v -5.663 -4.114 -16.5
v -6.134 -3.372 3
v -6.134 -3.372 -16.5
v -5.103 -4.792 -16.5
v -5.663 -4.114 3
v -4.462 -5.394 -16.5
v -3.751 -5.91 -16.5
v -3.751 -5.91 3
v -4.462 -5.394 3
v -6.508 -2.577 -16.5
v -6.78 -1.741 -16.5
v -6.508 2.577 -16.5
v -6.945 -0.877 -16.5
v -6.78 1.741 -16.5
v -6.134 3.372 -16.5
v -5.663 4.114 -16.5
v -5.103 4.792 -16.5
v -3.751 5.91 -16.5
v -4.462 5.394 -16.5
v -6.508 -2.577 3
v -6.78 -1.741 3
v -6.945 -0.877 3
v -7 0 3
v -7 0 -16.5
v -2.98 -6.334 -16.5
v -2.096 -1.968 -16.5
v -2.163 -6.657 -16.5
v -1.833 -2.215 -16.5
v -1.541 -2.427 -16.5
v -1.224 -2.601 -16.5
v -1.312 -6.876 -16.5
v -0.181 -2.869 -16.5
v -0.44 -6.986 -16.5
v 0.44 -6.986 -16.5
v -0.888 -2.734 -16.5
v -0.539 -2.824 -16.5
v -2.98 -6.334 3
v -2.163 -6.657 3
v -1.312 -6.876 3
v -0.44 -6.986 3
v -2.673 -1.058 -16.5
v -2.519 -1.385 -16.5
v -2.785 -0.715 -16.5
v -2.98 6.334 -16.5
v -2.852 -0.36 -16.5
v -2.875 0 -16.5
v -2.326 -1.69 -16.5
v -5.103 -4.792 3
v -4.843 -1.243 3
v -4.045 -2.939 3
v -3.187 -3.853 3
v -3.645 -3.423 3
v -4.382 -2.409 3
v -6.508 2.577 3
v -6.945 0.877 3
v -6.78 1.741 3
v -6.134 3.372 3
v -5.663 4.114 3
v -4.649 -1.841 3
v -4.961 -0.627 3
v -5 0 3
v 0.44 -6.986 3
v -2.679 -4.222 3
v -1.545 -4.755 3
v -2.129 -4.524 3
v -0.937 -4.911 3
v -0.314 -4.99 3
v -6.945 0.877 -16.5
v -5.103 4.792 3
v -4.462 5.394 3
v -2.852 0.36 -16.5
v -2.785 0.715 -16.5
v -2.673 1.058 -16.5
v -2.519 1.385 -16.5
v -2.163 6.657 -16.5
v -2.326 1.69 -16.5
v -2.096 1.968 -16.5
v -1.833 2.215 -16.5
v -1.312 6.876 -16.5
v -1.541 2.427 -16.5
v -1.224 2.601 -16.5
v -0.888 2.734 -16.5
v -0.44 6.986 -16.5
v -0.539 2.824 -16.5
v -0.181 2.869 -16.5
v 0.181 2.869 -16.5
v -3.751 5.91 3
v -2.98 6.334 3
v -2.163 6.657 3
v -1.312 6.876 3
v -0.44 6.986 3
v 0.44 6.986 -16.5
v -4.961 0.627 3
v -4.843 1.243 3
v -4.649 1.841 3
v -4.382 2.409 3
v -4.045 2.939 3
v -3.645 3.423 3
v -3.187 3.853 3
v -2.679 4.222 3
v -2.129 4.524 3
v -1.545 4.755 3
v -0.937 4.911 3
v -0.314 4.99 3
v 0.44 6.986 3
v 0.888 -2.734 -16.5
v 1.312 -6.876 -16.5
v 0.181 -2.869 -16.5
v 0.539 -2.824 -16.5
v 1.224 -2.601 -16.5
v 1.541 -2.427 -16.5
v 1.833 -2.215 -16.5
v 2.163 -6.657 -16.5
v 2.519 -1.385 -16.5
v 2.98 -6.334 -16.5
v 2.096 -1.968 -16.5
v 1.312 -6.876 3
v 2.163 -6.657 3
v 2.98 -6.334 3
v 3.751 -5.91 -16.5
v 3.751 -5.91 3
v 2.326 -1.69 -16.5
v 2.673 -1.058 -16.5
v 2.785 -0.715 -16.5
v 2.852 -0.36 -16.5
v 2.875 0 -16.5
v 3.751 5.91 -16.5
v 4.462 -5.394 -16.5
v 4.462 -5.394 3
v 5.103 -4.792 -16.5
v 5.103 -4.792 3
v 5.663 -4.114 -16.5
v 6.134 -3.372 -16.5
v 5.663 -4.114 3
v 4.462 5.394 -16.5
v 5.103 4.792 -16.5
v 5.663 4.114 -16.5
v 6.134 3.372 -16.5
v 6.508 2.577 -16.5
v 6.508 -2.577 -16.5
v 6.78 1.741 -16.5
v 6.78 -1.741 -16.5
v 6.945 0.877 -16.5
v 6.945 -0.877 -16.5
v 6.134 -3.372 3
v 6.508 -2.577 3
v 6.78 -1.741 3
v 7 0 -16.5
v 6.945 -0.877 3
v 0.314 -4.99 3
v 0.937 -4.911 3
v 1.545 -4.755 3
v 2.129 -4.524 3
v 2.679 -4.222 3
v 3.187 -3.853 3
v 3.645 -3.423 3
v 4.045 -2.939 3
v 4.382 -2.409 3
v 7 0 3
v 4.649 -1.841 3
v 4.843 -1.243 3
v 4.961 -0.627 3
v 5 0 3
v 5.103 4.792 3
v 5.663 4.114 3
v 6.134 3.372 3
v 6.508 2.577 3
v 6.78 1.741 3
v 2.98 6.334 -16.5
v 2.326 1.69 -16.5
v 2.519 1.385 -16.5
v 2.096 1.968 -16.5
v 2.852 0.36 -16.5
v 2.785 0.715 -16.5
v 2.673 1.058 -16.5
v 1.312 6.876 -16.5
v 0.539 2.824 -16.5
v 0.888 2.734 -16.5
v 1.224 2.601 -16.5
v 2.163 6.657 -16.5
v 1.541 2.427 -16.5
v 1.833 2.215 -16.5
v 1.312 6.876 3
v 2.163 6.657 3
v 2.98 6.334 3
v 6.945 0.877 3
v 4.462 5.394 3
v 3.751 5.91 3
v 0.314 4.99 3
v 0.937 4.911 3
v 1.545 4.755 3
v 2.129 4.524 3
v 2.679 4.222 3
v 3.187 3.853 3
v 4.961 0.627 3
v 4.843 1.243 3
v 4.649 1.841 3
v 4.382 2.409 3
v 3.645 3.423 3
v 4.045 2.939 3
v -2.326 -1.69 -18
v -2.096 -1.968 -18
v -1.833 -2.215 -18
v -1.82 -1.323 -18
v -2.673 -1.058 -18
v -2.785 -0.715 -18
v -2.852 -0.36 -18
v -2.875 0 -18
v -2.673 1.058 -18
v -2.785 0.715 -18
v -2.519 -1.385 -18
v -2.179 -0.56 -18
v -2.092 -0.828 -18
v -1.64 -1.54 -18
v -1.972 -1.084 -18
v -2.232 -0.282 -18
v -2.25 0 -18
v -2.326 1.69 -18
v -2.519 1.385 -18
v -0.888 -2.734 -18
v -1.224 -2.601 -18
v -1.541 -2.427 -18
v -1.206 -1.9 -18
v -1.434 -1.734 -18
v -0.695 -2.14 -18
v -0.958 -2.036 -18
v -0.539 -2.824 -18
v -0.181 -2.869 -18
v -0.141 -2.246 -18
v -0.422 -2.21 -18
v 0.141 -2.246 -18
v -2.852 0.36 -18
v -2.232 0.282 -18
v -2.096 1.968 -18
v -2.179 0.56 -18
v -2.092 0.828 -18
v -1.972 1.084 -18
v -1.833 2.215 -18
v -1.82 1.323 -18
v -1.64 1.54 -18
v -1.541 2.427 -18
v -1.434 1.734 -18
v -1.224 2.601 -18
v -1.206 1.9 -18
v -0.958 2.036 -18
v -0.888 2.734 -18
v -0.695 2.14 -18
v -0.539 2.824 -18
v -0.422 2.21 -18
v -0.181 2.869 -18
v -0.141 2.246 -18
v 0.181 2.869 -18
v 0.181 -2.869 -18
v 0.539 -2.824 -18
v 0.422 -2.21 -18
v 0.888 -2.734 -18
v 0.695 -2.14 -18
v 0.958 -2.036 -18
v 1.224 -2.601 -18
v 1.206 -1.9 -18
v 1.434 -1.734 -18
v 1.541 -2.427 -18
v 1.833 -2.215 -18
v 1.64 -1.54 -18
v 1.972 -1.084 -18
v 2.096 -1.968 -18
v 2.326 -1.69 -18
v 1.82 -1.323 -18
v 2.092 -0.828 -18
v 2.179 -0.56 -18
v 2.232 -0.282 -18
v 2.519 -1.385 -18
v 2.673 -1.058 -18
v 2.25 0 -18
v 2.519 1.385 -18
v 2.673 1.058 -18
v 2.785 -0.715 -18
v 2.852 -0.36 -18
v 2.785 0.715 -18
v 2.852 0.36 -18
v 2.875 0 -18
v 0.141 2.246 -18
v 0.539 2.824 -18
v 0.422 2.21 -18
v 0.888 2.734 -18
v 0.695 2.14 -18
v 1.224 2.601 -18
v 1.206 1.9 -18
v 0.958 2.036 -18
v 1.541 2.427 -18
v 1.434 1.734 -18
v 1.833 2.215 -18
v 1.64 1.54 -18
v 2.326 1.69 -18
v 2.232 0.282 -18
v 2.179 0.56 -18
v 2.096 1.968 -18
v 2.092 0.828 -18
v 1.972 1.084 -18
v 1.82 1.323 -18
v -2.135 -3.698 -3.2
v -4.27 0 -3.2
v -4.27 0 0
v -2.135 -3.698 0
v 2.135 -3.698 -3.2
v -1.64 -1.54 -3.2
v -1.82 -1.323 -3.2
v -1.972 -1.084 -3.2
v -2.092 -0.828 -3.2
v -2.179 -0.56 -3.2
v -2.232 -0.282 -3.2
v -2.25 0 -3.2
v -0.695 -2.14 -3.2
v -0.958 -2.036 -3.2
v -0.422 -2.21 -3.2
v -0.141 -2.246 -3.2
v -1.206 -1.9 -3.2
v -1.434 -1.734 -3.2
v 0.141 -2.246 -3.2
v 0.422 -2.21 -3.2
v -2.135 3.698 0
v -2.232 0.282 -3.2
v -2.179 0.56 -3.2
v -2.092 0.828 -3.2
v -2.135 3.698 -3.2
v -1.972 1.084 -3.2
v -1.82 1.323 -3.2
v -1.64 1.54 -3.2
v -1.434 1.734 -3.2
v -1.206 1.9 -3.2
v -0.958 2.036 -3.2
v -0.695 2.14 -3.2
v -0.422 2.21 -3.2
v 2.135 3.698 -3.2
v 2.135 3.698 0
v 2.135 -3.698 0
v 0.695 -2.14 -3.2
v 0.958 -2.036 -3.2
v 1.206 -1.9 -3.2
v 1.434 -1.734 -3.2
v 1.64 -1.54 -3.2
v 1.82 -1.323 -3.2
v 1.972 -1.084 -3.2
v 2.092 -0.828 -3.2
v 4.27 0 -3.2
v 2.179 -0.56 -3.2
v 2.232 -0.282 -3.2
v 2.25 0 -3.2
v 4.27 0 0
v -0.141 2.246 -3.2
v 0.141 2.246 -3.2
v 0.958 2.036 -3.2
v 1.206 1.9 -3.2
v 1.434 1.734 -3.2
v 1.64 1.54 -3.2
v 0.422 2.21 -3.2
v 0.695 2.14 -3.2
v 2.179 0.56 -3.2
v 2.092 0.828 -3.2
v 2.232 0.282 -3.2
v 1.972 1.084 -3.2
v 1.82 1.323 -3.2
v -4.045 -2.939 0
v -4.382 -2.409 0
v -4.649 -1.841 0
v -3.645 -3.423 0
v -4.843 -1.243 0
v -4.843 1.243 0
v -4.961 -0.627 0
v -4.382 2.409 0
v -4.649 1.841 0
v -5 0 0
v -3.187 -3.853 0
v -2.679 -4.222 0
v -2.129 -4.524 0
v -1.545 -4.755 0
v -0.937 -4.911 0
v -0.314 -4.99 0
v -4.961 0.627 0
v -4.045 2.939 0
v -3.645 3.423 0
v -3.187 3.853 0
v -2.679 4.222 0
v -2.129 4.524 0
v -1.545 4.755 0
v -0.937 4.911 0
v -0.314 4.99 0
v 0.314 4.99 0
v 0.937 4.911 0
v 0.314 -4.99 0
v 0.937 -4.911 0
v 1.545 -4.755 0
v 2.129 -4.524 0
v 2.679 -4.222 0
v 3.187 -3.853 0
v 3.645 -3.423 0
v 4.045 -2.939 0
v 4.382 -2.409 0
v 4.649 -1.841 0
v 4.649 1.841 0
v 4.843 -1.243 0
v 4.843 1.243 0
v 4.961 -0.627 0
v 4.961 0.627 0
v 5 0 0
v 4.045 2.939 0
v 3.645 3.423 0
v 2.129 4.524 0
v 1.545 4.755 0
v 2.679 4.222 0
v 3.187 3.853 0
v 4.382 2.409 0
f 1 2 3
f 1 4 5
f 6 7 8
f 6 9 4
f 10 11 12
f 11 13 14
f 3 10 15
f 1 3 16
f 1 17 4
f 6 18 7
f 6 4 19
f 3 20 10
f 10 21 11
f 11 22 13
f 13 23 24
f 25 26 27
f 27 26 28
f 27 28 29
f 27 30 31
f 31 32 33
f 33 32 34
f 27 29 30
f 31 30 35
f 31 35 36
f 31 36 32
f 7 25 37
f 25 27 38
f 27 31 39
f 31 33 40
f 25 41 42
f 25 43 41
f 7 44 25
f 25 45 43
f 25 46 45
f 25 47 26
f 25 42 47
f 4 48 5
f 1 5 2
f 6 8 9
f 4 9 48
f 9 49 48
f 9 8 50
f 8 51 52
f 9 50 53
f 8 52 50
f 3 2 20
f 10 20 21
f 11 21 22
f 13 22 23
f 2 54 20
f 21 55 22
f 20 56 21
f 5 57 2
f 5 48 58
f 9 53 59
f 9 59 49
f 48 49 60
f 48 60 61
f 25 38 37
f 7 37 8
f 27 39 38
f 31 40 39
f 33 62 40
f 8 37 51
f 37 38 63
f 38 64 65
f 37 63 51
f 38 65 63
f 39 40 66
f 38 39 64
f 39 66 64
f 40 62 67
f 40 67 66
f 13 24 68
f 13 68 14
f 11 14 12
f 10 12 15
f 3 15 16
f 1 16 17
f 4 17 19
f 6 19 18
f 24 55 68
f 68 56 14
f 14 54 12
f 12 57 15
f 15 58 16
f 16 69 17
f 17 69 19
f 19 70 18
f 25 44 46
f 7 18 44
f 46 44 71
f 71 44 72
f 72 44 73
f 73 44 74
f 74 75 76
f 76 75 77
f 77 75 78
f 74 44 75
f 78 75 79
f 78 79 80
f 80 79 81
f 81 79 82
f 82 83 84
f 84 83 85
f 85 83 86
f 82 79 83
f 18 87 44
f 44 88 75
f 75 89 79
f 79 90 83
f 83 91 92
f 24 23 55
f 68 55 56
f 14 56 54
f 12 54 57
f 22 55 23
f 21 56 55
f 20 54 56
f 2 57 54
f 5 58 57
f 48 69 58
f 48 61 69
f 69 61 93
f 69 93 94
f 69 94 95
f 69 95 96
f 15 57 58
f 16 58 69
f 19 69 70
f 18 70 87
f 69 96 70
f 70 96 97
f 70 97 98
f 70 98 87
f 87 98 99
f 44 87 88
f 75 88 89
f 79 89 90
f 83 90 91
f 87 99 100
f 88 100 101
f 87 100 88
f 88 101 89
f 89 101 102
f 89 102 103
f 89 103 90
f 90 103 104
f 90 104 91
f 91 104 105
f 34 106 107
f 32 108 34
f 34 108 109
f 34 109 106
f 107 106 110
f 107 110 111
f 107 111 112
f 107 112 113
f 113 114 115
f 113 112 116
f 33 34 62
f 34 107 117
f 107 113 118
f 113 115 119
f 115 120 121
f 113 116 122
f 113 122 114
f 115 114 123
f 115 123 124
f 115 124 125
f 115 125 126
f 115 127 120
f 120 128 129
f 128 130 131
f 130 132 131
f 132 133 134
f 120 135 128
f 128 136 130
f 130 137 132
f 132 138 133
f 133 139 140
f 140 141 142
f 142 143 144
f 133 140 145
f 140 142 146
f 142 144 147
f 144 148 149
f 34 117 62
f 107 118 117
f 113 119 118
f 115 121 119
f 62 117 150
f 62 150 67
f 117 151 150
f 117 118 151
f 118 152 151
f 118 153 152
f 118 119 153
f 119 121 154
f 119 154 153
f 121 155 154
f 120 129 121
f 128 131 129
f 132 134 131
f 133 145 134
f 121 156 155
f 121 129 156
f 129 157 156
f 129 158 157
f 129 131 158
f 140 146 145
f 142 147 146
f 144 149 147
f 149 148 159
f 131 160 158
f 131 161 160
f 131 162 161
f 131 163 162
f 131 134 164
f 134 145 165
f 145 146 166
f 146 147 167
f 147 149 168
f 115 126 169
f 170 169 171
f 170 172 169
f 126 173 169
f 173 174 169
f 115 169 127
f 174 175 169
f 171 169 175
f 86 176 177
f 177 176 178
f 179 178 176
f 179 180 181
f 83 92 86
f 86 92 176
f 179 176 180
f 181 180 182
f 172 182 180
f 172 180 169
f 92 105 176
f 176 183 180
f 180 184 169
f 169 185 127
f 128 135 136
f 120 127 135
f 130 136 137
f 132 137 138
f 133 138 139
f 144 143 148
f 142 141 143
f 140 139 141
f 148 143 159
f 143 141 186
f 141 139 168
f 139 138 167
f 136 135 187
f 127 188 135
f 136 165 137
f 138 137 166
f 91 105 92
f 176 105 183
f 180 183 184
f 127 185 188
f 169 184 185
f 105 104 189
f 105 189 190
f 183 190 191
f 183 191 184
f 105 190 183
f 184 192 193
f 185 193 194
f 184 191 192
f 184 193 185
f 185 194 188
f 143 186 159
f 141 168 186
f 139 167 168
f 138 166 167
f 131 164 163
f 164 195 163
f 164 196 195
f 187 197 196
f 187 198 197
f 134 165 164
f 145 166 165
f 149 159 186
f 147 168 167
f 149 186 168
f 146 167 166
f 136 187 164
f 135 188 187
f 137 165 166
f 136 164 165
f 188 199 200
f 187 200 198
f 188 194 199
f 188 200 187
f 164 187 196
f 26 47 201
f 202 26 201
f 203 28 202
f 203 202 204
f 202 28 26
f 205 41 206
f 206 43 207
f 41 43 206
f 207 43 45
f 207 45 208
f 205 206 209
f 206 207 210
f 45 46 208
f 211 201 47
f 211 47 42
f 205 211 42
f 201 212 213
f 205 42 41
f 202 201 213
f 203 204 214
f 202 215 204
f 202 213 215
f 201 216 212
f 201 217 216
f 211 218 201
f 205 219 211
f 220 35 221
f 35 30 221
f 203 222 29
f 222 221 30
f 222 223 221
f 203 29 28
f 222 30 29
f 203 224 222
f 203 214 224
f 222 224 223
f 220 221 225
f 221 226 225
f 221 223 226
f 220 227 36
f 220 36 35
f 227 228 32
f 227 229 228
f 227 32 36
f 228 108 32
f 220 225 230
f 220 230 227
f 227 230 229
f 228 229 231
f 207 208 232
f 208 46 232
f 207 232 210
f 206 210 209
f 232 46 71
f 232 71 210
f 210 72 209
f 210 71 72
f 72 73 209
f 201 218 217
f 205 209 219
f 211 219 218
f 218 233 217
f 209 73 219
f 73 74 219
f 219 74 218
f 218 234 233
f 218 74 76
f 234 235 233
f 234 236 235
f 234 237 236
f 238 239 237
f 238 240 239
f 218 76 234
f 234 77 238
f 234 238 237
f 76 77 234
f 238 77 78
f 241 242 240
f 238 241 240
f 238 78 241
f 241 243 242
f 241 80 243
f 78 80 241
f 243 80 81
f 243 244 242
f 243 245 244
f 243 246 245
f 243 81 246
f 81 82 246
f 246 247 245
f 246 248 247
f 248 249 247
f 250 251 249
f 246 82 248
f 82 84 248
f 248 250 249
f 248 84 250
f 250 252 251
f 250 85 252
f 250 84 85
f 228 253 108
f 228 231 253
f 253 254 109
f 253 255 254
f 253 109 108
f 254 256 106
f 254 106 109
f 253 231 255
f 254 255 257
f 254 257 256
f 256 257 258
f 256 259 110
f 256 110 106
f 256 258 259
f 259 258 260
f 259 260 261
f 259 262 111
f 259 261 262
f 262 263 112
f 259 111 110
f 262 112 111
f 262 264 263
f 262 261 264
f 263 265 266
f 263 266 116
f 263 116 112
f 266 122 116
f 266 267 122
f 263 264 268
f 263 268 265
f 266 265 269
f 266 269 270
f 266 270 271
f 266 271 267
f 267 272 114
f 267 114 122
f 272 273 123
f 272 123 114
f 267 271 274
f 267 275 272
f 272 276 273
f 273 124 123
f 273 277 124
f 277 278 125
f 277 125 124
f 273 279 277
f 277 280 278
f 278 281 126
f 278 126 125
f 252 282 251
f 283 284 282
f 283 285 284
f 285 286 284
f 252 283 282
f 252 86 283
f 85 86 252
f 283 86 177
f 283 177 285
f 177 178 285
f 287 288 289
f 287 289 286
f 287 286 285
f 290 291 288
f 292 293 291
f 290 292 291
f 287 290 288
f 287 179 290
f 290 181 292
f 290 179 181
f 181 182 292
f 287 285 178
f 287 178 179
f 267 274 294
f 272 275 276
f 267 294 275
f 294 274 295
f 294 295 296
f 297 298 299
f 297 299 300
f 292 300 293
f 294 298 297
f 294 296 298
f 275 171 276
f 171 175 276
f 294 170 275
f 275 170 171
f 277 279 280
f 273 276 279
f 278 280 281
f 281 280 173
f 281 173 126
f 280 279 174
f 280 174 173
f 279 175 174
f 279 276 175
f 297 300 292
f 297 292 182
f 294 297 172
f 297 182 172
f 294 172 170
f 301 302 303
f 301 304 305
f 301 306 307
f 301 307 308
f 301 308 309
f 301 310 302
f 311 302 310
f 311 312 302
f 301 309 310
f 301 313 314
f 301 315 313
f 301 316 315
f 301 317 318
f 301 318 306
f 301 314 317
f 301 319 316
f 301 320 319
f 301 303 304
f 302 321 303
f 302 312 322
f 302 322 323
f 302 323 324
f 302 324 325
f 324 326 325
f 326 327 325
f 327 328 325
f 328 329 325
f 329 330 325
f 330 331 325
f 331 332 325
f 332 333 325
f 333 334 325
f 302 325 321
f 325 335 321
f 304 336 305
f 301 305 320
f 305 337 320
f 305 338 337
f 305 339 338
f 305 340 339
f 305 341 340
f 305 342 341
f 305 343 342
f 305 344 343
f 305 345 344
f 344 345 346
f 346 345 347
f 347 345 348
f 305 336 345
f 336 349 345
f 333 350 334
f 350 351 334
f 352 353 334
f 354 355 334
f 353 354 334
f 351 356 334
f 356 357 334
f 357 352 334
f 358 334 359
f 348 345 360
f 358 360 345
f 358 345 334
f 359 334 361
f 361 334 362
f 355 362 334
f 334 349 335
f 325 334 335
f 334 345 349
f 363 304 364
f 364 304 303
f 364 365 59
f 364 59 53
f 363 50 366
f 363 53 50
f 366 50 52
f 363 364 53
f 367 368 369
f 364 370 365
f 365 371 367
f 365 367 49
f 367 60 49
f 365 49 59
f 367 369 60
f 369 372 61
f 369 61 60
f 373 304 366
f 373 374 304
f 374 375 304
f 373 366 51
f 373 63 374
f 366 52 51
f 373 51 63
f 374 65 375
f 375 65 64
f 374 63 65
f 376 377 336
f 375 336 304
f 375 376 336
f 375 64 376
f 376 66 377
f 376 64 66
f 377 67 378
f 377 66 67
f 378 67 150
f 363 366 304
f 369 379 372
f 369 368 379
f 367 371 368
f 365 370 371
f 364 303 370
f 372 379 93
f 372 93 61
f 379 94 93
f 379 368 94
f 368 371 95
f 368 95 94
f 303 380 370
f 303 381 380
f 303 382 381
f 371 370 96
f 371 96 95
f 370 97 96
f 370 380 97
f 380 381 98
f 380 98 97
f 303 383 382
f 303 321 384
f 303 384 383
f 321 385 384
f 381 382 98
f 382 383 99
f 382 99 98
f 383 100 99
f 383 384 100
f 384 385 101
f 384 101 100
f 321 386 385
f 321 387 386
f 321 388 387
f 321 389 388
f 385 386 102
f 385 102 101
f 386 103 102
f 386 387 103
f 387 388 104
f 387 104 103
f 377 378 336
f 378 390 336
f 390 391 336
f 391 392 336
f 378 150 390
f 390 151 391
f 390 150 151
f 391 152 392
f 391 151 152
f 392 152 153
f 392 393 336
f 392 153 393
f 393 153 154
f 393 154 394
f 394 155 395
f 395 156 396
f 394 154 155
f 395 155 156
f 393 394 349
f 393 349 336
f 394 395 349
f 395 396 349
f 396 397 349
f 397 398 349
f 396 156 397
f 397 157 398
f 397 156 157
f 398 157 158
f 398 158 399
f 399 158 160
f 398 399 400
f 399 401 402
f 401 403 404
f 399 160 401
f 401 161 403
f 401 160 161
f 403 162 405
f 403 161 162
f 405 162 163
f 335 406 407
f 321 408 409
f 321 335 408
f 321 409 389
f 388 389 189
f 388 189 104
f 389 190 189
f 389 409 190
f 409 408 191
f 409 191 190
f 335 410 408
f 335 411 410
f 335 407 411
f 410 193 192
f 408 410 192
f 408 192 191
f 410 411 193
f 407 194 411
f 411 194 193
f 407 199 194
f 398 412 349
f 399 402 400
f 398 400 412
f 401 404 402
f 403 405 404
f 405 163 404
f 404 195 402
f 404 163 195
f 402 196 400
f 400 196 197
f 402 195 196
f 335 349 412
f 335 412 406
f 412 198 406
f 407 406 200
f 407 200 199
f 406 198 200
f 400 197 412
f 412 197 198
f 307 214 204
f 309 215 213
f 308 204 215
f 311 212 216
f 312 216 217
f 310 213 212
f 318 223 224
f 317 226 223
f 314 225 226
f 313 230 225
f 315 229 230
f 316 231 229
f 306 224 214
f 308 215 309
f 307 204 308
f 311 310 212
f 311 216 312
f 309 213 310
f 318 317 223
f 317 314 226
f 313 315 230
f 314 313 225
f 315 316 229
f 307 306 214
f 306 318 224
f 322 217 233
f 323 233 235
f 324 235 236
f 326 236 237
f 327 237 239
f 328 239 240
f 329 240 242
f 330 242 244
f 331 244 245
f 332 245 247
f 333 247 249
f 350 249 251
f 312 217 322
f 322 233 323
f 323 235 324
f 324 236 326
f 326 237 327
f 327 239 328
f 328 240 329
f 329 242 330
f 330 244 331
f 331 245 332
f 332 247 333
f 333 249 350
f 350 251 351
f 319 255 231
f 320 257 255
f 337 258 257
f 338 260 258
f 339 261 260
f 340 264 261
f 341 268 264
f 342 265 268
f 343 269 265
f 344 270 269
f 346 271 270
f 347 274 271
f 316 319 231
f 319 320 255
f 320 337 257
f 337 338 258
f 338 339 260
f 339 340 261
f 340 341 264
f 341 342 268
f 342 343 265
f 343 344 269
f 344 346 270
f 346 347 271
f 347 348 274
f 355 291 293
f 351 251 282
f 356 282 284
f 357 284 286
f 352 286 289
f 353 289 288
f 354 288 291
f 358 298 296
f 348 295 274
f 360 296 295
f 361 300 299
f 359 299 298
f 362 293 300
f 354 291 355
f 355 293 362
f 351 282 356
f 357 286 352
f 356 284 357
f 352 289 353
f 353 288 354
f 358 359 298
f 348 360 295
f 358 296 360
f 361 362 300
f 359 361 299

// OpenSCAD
$fn = 50;

difference() {
	union() {
		translate(v = [0, 0, -16.5]) {
			cylinder(h = 19.5, r = 7.0);
		}
		#translate(v = [0, 0, -18.0]) {
			cylinder(h = 18, r = 2.875);
		}
	}
	union() {
		translate(v = [0, 0, 0]) {
			rotate(a = [0, 0, 0]) {
				difference() {
					union() {
						translate(v = [0, 0, -3.2]) {
							linear_extrude(height = 3.2) {
								polygon(points = [[4.2698, 0.0], [2.1349000000000005, 3.697755269078796], [-2.134899999999999, 3.6977552690787965], [-4.2698, 5.228996902999369e-16], [-2.134900000000002, -3.6977552690787956], [2.1348999999999974, -3.697755269078798]]);
							}
						}
					}
					union();
				}
			}
		}
		#cylinder(h = 3, r = 5.0);
		#translate(v = [0, 0, -100.0]) {
			cylinder(h = 200, r = 2.25);
		}
	}
}
